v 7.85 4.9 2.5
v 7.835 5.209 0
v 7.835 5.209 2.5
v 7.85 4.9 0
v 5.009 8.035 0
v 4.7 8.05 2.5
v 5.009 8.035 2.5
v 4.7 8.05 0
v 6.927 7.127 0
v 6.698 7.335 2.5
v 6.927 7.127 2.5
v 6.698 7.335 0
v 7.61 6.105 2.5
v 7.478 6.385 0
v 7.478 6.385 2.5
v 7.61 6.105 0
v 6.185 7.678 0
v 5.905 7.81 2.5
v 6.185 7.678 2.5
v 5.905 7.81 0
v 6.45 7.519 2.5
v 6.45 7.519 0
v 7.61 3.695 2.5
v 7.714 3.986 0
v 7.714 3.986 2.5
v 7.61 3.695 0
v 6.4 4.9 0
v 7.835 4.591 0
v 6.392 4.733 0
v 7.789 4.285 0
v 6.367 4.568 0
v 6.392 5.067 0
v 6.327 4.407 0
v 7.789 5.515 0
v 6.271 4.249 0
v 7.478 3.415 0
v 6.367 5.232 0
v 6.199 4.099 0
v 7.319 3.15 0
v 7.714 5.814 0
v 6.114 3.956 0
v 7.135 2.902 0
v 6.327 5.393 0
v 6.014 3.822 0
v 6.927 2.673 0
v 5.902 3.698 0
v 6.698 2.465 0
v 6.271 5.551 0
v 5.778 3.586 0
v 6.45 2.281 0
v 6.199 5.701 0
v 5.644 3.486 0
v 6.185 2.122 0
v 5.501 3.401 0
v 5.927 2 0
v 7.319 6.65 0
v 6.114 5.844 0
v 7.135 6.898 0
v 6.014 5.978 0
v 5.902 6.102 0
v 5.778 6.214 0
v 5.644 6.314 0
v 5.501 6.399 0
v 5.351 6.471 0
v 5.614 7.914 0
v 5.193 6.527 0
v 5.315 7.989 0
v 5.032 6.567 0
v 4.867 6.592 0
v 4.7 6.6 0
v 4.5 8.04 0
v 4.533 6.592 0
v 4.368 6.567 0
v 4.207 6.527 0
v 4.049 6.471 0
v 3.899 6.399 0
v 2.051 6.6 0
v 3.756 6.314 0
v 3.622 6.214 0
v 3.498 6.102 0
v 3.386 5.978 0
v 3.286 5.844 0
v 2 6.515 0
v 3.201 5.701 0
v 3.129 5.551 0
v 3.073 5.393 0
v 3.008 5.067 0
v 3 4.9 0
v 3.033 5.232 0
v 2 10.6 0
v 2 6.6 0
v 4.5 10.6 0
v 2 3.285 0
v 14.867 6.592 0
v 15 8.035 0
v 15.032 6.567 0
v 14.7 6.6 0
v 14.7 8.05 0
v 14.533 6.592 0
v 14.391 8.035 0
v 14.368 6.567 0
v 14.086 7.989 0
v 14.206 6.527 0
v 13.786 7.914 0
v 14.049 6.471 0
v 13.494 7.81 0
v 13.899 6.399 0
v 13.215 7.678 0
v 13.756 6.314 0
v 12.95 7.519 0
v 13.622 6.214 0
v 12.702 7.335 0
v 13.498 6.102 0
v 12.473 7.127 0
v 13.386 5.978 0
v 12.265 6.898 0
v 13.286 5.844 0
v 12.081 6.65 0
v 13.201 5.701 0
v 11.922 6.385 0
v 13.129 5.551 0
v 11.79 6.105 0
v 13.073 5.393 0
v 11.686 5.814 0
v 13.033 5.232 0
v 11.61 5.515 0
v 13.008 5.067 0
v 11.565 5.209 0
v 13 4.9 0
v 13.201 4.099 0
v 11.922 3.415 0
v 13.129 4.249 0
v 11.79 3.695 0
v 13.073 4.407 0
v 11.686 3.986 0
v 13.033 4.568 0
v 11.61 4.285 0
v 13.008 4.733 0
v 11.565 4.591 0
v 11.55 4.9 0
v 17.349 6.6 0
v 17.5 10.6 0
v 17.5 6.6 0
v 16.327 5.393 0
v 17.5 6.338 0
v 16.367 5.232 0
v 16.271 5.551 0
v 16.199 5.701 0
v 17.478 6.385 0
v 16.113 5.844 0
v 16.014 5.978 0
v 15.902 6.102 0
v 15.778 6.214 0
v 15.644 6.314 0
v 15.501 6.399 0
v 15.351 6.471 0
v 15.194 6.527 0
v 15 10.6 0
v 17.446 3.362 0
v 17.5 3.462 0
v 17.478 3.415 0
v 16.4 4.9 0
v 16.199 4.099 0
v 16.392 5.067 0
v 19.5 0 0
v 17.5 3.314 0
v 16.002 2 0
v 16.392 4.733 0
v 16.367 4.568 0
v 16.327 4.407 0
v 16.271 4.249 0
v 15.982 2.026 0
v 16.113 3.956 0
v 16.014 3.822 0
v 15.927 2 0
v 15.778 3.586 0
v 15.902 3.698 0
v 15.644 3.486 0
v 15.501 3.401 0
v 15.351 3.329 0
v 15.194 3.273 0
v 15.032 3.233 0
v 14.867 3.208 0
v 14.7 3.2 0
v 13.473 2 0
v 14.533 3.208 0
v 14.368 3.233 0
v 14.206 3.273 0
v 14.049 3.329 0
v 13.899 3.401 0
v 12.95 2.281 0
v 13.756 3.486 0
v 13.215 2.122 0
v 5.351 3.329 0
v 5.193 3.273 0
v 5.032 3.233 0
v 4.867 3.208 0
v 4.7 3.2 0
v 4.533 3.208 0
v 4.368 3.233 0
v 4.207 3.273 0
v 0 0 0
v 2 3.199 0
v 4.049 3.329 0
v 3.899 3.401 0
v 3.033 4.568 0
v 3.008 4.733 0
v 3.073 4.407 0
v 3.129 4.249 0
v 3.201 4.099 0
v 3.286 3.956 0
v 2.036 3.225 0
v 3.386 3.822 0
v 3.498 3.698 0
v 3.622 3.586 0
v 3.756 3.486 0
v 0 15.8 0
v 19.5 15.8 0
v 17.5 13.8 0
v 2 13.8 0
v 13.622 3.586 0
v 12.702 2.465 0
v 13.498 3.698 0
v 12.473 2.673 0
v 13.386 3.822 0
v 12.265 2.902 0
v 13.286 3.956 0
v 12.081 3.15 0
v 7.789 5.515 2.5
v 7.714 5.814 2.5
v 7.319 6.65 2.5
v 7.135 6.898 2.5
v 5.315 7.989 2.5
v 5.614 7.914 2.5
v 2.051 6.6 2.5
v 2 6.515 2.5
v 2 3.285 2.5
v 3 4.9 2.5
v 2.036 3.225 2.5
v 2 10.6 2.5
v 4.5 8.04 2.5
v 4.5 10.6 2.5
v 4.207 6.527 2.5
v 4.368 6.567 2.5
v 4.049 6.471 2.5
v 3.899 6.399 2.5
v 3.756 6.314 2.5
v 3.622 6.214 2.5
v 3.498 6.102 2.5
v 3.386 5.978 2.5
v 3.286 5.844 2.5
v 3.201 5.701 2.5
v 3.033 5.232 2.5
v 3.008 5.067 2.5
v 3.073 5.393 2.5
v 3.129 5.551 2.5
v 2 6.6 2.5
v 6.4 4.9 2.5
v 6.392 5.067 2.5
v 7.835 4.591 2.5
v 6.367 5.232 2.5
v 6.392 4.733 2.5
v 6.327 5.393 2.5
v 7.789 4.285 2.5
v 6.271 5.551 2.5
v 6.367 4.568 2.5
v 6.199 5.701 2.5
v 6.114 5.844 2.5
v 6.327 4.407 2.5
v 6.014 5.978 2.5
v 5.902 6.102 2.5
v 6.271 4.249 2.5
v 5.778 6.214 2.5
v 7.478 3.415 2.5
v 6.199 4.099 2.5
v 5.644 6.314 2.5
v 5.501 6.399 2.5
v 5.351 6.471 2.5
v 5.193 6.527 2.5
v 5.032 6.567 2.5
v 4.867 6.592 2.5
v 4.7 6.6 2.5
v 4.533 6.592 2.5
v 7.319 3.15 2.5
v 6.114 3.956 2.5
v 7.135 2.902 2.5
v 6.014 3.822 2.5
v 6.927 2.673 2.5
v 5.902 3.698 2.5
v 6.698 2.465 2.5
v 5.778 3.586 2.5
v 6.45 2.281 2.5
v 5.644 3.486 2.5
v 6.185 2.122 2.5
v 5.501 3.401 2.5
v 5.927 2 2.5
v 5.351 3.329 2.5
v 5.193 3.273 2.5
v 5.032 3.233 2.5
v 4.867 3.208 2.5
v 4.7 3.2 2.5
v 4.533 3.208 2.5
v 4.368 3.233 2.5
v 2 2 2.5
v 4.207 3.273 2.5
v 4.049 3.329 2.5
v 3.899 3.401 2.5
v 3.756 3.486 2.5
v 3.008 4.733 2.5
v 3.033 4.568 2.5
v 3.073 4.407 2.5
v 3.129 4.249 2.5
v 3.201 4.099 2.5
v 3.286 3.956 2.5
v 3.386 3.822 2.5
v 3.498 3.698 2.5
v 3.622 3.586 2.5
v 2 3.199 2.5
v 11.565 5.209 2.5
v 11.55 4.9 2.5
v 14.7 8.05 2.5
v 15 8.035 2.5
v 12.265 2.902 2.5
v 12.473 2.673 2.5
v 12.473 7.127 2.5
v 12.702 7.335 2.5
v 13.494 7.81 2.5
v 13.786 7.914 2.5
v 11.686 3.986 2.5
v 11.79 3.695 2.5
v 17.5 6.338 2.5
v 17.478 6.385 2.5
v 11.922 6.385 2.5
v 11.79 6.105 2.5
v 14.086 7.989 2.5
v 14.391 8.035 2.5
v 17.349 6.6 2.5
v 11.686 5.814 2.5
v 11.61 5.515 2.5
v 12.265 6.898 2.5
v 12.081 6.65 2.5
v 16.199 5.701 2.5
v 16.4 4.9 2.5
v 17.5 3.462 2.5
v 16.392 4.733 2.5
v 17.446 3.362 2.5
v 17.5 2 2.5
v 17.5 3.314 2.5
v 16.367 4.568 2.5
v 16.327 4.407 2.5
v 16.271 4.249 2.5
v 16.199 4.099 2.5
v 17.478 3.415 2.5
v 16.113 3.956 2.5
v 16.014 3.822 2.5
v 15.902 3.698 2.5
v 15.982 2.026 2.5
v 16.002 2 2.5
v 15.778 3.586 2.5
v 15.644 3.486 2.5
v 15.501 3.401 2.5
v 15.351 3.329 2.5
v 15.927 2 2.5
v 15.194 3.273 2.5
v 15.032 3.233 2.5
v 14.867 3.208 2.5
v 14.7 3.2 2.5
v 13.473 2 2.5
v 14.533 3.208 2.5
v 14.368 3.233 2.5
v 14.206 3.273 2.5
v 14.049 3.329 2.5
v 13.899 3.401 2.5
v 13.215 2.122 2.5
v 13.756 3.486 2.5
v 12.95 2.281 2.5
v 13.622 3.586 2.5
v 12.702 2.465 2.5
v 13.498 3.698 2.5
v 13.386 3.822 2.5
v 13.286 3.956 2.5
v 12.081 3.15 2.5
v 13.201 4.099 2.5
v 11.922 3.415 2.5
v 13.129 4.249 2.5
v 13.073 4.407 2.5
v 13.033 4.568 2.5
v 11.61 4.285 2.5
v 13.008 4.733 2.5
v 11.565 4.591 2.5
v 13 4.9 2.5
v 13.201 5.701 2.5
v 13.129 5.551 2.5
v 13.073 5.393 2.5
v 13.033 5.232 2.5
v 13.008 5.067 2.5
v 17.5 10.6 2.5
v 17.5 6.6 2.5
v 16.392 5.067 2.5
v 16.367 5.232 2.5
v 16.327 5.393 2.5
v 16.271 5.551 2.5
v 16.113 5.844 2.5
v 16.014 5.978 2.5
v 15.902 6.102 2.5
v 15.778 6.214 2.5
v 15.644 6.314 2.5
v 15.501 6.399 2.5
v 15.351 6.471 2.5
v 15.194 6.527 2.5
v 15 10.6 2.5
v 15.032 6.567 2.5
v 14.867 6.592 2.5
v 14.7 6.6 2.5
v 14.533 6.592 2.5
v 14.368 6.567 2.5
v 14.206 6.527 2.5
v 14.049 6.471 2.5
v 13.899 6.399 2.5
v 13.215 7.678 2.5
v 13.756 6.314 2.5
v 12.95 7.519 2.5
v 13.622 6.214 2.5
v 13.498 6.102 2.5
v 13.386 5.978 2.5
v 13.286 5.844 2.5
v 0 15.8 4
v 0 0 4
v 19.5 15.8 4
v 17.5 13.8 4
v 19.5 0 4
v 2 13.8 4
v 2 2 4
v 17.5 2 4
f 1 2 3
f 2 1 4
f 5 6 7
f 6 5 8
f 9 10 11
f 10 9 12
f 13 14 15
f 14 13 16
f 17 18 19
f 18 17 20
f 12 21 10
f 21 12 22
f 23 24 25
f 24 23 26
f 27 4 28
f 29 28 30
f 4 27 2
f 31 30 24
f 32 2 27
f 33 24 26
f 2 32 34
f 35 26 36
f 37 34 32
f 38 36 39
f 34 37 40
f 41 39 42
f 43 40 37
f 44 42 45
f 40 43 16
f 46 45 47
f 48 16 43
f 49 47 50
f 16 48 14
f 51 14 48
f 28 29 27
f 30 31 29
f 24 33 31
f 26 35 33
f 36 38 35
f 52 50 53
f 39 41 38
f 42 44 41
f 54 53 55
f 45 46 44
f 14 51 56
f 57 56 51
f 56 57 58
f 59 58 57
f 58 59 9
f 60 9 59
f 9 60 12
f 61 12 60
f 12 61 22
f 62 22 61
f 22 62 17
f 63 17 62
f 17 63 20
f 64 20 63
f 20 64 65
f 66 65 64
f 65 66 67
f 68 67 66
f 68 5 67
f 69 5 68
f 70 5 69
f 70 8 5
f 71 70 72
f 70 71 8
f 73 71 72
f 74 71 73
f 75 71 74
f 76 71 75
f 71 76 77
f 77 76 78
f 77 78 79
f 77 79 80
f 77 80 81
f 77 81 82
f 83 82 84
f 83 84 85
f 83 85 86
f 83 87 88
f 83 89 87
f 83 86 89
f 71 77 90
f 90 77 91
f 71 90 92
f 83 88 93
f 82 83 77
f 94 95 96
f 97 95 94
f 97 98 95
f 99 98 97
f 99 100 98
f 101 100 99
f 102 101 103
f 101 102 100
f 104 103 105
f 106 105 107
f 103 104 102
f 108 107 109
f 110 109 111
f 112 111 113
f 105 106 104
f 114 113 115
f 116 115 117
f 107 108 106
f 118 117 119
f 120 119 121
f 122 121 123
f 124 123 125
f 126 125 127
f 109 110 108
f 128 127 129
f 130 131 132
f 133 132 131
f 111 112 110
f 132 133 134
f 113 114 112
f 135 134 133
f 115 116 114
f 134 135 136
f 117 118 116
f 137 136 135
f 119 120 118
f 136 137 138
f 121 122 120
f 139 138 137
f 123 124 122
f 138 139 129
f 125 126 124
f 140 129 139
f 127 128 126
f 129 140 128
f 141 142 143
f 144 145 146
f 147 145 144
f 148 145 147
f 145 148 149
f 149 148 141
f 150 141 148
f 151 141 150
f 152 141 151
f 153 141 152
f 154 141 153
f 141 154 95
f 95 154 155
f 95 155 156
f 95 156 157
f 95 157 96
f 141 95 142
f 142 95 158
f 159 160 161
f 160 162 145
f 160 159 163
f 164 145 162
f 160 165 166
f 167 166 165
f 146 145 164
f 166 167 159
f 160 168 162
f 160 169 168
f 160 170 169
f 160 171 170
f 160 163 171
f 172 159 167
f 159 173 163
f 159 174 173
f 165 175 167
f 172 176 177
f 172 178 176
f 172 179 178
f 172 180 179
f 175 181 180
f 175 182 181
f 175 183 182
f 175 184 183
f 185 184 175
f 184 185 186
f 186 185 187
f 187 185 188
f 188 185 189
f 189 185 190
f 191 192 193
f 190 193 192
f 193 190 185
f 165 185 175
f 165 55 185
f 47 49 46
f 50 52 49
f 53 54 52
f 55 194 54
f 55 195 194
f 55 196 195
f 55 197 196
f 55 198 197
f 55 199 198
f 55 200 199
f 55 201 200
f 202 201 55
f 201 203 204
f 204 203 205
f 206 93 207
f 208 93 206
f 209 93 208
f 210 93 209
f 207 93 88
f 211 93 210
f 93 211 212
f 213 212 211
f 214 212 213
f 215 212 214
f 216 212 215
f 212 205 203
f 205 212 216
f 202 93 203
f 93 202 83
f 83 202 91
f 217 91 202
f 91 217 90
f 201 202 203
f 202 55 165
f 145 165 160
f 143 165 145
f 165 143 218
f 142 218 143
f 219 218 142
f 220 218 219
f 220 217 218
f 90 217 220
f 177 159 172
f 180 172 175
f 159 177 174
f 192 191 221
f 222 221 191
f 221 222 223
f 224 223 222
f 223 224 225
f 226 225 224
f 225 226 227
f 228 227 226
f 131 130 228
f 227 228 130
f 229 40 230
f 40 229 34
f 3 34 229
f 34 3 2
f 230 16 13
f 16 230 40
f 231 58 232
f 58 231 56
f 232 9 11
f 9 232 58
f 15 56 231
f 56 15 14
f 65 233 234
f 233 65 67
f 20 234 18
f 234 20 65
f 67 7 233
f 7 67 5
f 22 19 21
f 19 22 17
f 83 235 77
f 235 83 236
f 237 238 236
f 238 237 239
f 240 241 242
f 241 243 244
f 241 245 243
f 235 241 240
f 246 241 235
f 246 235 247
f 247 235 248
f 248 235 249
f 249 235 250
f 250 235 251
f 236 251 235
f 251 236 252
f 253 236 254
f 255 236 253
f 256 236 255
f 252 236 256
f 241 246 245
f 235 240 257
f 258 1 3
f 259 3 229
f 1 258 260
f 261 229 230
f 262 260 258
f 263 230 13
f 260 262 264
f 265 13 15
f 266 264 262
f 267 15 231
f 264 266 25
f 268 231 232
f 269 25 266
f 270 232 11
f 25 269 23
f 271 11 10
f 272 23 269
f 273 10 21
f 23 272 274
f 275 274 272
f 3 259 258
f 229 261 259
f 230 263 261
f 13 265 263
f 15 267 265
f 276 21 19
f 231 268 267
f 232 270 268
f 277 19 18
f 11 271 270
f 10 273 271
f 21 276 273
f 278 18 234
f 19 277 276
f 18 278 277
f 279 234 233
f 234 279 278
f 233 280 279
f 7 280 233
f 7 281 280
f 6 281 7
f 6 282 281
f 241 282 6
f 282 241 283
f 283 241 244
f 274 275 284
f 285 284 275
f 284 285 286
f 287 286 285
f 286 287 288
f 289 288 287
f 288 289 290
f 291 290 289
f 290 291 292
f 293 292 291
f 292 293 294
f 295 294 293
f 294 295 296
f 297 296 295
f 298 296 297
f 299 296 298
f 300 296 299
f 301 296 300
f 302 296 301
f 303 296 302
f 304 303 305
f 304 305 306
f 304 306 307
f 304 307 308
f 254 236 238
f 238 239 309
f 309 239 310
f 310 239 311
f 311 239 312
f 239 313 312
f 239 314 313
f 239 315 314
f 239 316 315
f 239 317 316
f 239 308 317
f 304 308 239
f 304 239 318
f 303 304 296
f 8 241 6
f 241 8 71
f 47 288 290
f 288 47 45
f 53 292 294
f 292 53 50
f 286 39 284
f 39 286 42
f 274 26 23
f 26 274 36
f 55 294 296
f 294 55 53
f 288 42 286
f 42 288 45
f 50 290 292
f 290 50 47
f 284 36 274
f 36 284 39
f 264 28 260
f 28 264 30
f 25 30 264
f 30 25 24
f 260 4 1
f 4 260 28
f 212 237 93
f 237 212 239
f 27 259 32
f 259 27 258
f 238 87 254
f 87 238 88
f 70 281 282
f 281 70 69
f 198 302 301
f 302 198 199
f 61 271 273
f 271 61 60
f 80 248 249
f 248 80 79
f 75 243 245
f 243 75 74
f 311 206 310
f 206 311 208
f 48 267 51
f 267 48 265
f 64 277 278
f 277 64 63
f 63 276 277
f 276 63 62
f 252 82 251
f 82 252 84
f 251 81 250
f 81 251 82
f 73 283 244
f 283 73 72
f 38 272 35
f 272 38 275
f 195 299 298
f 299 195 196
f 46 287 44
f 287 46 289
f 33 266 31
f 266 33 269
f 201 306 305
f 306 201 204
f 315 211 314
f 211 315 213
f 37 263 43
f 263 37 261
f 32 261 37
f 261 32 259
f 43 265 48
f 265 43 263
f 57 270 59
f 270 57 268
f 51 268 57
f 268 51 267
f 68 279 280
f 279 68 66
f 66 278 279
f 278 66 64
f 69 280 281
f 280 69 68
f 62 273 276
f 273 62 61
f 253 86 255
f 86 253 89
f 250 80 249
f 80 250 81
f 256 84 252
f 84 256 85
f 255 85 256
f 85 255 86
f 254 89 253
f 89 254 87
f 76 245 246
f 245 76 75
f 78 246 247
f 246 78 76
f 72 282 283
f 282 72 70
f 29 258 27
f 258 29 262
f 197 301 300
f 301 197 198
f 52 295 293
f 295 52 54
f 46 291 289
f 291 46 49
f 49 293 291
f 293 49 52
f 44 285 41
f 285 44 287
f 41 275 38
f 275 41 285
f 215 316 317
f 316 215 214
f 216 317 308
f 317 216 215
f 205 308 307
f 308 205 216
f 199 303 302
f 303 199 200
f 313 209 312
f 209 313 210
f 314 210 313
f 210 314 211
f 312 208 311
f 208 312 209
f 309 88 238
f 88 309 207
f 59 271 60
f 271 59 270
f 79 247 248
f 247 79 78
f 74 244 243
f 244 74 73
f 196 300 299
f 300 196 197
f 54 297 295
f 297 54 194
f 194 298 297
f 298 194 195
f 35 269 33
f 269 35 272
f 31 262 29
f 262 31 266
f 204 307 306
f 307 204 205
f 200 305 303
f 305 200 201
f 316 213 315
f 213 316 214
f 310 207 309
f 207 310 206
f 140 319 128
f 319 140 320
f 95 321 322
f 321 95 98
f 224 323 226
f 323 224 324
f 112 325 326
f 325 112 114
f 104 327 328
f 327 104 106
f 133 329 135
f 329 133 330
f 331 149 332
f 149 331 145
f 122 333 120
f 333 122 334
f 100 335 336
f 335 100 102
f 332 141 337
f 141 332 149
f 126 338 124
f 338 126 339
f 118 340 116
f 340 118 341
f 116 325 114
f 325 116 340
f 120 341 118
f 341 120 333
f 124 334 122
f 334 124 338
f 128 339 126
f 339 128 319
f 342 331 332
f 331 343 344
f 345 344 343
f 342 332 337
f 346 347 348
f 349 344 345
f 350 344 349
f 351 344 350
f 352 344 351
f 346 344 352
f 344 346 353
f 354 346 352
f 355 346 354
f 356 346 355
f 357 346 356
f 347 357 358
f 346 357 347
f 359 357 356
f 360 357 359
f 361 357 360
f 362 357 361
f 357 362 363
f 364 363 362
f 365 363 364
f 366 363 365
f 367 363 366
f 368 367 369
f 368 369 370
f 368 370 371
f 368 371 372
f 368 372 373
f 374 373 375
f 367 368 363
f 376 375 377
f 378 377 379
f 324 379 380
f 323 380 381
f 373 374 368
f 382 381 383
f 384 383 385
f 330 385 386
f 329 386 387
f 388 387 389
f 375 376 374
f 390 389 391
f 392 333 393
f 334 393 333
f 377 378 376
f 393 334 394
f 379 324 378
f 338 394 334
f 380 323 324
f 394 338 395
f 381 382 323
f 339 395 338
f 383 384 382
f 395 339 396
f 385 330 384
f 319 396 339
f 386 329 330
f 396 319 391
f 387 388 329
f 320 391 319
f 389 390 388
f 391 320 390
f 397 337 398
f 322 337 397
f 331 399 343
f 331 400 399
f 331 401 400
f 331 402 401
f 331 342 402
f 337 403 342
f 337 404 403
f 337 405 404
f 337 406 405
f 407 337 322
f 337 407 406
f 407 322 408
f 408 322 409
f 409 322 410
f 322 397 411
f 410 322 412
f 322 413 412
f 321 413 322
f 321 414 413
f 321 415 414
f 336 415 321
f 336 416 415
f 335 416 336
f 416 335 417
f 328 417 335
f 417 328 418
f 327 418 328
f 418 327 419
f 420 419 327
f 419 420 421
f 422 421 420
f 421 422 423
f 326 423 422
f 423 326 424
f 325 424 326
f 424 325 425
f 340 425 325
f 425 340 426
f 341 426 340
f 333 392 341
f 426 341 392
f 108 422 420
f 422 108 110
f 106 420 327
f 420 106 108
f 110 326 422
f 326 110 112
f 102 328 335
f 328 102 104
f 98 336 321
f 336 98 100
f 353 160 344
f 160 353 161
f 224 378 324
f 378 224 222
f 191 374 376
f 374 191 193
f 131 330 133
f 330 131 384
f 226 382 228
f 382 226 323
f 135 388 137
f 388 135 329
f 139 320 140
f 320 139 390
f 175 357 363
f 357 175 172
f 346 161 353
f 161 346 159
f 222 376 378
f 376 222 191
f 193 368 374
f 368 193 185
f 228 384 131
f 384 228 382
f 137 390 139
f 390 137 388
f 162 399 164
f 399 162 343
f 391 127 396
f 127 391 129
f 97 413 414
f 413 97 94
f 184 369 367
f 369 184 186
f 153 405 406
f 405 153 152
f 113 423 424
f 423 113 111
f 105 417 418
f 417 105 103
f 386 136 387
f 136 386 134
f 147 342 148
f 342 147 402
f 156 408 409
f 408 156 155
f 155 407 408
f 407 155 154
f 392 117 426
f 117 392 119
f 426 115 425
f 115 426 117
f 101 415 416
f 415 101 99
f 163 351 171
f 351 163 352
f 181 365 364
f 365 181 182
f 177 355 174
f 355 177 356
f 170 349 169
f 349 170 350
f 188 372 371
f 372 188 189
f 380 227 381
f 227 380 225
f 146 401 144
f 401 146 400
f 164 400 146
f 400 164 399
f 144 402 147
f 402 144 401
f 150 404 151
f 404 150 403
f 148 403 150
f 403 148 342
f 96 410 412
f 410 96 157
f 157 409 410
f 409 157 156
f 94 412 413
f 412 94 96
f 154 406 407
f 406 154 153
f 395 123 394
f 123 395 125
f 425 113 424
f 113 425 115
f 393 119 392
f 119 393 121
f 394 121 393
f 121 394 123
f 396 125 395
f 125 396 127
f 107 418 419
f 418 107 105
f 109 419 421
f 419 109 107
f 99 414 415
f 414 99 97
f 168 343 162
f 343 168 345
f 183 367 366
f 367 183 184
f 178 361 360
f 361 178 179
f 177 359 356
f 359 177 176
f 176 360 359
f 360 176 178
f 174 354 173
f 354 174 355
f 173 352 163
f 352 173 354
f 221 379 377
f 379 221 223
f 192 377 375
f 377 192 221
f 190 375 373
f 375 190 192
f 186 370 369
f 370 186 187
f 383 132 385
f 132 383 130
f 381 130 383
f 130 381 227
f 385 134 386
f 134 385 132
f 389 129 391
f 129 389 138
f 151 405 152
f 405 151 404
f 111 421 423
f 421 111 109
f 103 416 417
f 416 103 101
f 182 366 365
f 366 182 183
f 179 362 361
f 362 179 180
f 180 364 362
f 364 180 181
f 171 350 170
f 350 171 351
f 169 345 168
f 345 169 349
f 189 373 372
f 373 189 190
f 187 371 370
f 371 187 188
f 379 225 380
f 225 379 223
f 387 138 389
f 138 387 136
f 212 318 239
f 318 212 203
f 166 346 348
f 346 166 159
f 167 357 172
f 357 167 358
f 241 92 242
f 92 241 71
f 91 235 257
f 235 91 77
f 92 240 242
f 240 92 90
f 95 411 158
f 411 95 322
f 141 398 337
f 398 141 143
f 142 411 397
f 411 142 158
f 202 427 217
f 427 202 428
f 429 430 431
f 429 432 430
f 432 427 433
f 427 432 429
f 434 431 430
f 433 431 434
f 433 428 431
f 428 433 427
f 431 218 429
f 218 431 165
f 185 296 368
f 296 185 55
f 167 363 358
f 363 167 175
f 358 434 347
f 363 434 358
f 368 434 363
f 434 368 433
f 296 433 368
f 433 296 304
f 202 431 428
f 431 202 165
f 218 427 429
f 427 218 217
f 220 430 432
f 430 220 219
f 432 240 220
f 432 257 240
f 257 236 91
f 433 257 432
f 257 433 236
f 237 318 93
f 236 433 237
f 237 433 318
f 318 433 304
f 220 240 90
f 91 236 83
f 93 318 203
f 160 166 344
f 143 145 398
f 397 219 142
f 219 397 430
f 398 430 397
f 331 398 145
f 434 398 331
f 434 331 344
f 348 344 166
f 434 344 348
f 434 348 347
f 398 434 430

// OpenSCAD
$fn=64;

wHeight=4; //wall height
wThick=2; //wall thickness
bWidth=15.5; //board width
bHeight=11.8; //board height

module screwMount(){
  difference(){
    cylinder(h = wHeight-1.5,
             d = 6.3 ,
        center = false);
    cylinder(h = wHeight-1.3,
             d = 3.4,
        center = false);
  } 
}

module spacer(){
  cube([3, 4, wHeight-1.5], false);  
}

module screwMountFill(){
  cylinder(h = wHeight-1.5,
           d = 2,
      center = false);
}

module main(){
  union(){
    //screw mounts
    translate([wThick+2.7, wThick+2.9, 0])
      screwMount();
    translate([wThick+2.7+10, wThick+2.9, 0])
      screwMount();
 
   //screw mounts connections
   translate([wThick+0.6, wThick+0.4, 0])
     screwMountFill();
   translate([wThick+2.7+2.1+10, wThick+0.6, 0])
     screwMountFill();
        
   //back spacers
   translate([wThick-0.5, wThick+4.6, 0])
     spacer();
   translate([wThick+bWidth-2.5, wThick+4.6, 0])
     spacer();

   //front wall
   translate([0, 0, 0])
     cube([wThick*2+bWidth, wThick, wHeight], false);
   //back wall
   translate([0, wThick+bHeight, 0])
     cube([wThick*2+bWidth, wThick, wHeight], false);

   //side walls
   translate([0, 0, 0])
     cube([wThick, wThick+bHeight, wHeight], false);    
   translate([wThick+bWidth, 0, 0])
     cube([wThick, wThick+bHeight, wHeight], false);
  }  
}


main();
